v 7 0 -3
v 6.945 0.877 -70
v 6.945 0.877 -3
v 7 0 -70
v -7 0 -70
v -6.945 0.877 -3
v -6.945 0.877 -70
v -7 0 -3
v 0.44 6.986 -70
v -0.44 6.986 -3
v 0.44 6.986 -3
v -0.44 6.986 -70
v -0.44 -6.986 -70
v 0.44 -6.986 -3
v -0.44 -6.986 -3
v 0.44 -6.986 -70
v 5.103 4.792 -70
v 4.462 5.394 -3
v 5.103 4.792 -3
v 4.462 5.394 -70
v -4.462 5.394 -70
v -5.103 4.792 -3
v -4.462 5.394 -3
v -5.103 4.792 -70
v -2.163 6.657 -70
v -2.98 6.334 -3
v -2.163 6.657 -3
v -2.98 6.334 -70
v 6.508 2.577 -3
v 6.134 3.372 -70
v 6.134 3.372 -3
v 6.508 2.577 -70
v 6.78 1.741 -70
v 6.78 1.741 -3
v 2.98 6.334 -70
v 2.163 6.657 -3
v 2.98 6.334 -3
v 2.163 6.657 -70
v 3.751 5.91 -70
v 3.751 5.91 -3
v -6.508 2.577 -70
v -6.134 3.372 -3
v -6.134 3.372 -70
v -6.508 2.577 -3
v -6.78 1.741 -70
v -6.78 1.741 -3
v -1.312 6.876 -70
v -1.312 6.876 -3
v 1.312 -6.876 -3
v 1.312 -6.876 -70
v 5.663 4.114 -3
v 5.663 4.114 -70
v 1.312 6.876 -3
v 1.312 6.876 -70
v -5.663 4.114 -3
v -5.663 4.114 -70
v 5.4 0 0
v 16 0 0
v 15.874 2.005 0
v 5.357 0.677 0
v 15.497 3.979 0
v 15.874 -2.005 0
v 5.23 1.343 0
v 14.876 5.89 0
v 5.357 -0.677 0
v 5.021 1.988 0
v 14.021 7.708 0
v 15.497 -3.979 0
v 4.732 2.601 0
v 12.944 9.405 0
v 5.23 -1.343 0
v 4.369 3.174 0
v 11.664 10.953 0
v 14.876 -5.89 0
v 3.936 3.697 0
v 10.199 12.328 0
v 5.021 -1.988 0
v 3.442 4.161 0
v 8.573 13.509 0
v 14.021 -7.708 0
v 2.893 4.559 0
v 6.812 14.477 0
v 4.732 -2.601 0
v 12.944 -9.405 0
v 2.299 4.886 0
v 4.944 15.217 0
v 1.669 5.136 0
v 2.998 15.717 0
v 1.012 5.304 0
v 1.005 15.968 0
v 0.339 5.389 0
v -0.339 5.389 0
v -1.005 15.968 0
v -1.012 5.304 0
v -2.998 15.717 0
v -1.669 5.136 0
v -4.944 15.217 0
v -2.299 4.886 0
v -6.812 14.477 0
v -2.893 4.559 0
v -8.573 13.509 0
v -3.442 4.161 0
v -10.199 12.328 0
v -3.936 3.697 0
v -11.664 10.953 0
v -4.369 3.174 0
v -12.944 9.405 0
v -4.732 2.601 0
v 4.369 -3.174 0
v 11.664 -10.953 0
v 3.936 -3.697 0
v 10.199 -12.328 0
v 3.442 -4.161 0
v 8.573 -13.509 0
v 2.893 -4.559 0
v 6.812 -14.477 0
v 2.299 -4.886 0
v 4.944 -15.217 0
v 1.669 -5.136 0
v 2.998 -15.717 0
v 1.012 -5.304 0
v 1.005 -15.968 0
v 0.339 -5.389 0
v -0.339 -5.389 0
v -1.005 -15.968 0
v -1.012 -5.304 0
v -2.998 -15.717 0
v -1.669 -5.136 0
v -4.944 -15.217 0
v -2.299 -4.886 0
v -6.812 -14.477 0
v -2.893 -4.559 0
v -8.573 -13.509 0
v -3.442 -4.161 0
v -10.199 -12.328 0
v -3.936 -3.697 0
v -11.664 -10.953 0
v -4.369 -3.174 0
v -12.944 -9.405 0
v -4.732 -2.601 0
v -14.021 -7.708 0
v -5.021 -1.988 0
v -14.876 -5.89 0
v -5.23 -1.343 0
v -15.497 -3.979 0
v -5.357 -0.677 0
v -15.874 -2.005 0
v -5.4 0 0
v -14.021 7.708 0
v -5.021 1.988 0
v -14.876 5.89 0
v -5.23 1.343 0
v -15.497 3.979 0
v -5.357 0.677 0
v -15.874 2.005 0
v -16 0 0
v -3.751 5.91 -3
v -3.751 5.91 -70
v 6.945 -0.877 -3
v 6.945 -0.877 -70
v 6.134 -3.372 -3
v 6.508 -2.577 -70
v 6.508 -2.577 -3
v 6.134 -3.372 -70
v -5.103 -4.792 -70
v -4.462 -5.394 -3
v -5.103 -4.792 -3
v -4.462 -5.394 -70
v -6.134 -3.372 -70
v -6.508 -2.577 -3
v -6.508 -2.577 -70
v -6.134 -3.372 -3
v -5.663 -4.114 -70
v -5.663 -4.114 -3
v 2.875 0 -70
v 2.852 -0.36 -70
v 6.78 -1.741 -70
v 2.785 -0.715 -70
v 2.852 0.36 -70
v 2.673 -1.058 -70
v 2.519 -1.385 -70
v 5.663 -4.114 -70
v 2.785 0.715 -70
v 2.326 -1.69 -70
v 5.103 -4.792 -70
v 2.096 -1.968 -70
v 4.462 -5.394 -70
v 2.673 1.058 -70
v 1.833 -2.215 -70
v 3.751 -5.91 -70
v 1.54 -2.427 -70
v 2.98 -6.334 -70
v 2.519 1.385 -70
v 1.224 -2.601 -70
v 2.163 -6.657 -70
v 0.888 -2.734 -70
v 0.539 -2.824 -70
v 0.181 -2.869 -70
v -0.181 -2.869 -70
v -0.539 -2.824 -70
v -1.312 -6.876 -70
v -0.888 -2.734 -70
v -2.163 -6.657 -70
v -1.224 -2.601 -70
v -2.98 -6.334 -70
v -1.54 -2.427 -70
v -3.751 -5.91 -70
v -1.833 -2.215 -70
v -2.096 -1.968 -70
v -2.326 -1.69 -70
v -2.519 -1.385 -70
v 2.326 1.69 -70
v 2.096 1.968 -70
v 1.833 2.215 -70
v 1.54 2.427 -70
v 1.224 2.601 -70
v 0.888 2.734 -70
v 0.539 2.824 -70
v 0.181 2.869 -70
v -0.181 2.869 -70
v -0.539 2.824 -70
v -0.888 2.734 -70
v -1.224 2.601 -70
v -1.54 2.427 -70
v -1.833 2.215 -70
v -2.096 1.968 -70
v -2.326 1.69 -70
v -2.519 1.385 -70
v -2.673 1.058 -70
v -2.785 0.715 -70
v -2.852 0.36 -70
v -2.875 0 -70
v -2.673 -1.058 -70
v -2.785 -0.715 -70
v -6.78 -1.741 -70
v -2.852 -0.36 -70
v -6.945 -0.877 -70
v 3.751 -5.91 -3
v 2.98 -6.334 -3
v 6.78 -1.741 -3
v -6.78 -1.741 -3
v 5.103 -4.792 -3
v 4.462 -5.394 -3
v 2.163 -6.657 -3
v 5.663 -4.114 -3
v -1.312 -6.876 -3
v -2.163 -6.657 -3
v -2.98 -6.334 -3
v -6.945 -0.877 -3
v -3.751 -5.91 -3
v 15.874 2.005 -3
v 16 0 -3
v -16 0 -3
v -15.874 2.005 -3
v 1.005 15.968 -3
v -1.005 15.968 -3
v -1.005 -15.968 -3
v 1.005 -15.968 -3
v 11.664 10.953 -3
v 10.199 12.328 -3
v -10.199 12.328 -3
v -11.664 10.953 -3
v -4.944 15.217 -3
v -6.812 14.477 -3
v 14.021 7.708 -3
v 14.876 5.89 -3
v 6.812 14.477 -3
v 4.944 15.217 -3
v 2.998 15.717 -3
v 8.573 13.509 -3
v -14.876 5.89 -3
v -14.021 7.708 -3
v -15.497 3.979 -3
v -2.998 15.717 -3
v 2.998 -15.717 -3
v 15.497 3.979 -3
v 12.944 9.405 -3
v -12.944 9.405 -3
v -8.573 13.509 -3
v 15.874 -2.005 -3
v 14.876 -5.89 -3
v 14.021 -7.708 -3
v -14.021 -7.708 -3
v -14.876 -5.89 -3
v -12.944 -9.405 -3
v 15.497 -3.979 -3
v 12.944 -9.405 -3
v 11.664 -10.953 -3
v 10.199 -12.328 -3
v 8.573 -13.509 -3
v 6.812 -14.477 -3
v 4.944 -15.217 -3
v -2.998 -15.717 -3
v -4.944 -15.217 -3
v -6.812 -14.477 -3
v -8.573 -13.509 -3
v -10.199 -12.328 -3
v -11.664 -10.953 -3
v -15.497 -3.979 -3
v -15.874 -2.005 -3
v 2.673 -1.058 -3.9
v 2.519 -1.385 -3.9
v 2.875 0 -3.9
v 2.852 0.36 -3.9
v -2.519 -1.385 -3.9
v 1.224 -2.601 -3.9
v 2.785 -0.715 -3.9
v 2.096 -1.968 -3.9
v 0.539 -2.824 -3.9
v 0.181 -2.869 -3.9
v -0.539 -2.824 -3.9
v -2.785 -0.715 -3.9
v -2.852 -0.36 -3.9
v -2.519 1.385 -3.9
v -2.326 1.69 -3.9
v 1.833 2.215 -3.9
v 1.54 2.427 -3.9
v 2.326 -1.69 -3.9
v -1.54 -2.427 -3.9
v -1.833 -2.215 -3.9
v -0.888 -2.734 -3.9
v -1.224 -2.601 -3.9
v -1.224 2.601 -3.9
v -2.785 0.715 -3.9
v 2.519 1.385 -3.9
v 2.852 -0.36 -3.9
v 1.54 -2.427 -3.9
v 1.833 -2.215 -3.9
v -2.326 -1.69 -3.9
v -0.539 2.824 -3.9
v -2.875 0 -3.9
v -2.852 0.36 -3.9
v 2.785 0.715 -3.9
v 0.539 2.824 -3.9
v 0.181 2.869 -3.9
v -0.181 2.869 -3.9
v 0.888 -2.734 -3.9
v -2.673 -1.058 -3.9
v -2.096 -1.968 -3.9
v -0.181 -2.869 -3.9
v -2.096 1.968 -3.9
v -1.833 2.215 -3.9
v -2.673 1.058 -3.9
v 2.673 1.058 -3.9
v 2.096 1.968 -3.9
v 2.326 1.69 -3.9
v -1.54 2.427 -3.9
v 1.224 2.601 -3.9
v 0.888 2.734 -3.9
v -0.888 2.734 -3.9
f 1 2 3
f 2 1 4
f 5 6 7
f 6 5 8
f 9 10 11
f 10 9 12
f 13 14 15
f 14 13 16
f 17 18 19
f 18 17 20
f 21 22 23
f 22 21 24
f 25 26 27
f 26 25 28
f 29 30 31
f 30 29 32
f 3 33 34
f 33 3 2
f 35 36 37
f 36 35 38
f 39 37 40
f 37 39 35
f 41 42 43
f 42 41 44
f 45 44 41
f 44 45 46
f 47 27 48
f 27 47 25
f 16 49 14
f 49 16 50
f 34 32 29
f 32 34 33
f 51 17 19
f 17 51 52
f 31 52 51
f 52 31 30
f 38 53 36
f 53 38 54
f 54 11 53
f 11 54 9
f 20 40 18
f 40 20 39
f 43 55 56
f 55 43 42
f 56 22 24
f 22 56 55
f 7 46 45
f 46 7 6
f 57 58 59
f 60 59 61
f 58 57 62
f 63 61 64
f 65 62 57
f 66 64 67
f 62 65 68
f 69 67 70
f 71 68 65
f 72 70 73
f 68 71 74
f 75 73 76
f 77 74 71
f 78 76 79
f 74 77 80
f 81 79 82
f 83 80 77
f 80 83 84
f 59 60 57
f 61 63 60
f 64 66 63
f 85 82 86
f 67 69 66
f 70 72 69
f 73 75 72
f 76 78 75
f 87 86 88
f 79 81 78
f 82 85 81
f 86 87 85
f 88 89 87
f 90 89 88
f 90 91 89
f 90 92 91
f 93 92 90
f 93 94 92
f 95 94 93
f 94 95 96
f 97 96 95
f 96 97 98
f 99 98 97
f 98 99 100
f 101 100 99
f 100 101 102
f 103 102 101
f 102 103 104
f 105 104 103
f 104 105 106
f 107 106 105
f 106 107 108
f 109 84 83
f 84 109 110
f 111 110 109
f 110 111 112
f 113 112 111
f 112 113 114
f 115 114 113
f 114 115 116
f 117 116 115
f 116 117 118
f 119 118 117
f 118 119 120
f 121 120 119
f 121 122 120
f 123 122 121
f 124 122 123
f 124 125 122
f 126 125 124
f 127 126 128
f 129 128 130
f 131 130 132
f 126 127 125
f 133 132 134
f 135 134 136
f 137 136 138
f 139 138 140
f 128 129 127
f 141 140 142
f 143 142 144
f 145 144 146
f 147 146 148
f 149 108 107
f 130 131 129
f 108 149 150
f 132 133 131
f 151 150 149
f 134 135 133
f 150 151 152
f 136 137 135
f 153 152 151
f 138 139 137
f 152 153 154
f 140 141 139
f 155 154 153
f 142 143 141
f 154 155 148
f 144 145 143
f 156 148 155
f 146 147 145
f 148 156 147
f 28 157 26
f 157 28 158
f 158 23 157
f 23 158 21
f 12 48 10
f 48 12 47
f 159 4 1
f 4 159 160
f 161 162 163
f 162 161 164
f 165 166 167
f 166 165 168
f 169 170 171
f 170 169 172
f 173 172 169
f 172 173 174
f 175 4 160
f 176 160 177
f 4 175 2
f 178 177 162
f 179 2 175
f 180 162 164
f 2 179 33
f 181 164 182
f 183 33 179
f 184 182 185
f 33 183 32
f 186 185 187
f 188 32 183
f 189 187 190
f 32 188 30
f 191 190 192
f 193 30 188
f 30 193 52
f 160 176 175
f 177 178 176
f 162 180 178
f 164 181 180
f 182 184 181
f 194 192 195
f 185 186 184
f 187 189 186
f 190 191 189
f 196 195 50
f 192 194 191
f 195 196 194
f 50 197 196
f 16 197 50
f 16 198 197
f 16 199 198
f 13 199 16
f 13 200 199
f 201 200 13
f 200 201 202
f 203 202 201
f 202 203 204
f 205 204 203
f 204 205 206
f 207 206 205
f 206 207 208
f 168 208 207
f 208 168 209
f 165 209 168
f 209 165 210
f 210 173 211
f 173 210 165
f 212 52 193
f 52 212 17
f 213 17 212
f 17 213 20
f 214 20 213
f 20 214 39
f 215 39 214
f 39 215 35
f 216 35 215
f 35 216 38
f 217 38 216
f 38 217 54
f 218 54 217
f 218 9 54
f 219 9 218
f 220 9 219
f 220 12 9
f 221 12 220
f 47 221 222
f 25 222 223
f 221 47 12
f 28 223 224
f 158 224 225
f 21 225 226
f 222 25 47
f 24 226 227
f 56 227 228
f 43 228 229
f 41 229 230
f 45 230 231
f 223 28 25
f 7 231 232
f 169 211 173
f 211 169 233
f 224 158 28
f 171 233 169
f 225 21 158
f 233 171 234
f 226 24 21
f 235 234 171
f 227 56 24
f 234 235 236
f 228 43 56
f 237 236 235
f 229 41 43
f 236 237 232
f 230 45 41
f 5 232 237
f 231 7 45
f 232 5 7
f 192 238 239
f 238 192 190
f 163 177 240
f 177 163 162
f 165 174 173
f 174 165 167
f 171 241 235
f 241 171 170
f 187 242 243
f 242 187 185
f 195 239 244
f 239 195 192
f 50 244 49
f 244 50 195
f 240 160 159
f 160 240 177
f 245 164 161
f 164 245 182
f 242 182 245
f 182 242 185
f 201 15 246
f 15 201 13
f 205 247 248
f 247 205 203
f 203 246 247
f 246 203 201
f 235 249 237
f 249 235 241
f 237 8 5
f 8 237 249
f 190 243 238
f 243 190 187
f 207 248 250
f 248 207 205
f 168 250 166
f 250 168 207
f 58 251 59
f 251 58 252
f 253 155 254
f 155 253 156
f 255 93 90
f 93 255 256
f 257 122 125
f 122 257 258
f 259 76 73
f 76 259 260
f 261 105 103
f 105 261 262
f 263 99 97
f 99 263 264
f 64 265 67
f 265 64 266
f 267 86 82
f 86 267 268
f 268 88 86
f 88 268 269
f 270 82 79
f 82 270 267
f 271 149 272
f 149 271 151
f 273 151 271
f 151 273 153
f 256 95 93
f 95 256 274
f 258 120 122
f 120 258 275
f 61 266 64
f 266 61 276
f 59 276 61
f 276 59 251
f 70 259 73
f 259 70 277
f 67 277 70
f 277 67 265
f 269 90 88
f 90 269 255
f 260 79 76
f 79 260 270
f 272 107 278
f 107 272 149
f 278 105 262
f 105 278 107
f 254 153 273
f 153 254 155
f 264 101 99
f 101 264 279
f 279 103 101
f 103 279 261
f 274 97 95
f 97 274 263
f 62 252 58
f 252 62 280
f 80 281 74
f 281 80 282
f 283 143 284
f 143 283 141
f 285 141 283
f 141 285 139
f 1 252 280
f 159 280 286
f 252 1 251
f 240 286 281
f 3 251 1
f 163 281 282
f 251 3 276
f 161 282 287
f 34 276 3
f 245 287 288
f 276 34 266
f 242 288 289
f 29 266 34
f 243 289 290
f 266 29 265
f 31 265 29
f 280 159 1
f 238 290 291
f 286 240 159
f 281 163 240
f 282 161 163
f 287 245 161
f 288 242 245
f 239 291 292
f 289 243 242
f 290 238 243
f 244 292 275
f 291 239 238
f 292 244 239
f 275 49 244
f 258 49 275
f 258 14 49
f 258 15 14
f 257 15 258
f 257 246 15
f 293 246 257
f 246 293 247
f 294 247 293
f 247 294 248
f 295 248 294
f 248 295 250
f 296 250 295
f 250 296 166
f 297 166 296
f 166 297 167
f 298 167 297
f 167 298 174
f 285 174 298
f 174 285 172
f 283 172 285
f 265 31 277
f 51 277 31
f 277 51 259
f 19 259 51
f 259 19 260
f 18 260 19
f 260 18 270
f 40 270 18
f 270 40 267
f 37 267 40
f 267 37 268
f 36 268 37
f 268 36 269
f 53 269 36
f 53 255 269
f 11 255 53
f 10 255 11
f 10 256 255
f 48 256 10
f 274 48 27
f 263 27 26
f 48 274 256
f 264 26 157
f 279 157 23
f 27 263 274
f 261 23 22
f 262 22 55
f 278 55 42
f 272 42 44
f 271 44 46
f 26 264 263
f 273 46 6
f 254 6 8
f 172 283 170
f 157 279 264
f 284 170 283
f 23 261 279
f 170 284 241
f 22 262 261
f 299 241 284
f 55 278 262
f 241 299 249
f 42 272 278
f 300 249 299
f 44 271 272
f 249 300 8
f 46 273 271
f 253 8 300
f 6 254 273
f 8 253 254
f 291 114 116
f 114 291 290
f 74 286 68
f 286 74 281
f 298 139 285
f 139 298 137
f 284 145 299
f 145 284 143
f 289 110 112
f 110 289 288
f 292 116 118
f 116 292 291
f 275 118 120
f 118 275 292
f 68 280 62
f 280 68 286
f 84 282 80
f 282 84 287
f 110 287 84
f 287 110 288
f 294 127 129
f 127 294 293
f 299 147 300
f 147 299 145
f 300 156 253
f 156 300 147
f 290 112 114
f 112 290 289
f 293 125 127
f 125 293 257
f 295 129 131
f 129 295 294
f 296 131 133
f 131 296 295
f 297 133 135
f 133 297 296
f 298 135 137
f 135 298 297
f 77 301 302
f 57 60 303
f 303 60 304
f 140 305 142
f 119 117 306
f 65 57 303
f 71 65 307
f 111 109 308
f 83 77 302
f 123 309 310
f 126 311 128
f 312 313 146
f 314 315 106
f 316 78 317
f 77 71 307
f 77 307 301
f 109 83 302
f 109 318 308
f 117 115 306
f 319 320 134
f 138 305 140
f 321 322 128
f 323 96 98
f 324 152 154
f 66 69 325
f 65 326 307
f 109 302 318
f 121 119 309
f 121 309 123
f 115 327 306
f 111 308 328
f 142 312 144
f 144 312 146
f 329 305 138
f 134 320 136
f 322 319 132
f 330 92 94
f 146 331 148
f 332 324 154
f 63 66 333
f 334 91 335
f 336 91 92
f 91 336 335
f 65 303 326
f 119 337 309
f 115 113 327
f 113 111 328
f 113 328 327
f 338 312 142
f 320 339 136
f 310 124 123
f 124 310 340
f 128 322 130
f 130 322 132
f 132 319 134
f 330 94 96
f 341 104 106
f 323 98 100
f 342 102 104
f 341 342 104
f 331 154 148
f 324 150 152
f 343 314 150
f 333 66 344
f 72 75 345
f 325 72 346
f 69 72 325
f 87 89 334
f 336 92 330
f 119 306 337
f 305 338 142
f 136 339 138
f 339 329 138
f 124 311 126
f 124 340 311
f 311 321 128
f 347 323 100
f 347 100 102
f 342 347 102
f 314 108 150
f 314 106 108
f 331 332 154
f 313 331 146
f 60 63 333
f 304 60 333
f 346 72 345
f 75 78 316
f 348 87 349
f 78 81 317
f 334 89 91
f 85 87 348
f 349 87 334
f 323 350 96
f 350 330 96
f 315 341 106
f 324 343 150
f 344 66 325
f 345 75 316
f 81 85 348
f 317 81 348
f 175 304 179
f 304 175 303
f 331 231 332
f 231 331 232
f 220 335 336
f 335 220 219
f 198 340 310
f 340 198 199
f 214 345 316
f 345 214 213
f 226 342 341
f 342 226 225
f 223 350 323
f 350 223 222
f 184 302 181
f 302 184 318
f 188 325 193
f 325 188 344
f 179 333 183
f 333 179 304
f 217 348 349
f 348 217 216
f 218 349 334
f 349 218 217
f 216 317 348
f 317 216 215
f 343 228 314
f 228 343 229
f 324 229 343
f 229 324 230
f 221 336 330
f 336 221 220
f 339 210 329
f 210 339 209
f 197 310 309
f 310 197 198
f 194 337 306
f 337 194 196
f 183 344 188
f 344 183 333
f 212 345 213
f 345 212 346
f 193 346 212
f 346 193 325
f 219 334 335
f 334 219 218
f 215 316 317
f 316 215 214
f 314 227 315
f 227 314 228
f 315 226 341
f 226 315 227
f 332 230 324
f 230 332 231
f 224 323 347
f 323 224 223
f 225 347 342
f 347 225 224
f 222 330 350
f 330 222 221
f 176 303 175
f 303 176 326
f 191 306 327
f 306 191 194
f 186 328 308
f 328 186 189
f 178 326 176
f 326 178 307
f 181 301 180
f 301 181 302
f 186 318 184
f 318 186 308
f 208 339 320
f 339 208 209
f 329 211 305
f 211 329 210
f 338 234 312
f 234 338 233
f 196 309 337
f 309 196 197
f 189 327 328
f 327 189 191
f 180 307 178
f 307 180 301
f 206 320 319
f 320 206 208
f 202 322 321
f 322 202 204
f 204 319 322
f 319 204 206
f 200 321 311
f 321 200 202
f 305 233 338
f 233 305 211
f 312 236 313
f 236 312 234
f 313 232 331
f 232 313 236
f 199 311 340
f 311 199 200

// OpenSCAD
$fn = 50;


difference() {
	union() {
		translate(v = [0, 0, -70.0000000000]) {
			cylinder(h = 70, r = 7.0000000000);
		}
		translate(v = [0, 0, -3.0000000000]) {
			cylinder(h = 3, r = 16.0000000000);
		}
	}
	union() {
		translate(v = [0, 0, 0]) {
			rotate(a = [0, 0, 0]) {
				difference() {
					union() {
						#translate(v = [0, 0, -70.0000000000]) {
							cylinder(h = 70, r = 2.6000000000);
						}
						#translate(v = [0, 0, -3.9000000000]) {
							cylinder(h = 3.9000000000, r1 = 2.8750000000, r2 = 5.4000000000);
						}
						#translate(v = [0, 0, -70.0000000000]) {
							cylinder(h = 70, r = 2.8750000000);
						}
						#translate(v = [0, 0, -70.0000000000]) {
							cylinder(h = 70, r = 2.6000000000);
						}
					}
					union();
				}
			}
		}
	}
}
